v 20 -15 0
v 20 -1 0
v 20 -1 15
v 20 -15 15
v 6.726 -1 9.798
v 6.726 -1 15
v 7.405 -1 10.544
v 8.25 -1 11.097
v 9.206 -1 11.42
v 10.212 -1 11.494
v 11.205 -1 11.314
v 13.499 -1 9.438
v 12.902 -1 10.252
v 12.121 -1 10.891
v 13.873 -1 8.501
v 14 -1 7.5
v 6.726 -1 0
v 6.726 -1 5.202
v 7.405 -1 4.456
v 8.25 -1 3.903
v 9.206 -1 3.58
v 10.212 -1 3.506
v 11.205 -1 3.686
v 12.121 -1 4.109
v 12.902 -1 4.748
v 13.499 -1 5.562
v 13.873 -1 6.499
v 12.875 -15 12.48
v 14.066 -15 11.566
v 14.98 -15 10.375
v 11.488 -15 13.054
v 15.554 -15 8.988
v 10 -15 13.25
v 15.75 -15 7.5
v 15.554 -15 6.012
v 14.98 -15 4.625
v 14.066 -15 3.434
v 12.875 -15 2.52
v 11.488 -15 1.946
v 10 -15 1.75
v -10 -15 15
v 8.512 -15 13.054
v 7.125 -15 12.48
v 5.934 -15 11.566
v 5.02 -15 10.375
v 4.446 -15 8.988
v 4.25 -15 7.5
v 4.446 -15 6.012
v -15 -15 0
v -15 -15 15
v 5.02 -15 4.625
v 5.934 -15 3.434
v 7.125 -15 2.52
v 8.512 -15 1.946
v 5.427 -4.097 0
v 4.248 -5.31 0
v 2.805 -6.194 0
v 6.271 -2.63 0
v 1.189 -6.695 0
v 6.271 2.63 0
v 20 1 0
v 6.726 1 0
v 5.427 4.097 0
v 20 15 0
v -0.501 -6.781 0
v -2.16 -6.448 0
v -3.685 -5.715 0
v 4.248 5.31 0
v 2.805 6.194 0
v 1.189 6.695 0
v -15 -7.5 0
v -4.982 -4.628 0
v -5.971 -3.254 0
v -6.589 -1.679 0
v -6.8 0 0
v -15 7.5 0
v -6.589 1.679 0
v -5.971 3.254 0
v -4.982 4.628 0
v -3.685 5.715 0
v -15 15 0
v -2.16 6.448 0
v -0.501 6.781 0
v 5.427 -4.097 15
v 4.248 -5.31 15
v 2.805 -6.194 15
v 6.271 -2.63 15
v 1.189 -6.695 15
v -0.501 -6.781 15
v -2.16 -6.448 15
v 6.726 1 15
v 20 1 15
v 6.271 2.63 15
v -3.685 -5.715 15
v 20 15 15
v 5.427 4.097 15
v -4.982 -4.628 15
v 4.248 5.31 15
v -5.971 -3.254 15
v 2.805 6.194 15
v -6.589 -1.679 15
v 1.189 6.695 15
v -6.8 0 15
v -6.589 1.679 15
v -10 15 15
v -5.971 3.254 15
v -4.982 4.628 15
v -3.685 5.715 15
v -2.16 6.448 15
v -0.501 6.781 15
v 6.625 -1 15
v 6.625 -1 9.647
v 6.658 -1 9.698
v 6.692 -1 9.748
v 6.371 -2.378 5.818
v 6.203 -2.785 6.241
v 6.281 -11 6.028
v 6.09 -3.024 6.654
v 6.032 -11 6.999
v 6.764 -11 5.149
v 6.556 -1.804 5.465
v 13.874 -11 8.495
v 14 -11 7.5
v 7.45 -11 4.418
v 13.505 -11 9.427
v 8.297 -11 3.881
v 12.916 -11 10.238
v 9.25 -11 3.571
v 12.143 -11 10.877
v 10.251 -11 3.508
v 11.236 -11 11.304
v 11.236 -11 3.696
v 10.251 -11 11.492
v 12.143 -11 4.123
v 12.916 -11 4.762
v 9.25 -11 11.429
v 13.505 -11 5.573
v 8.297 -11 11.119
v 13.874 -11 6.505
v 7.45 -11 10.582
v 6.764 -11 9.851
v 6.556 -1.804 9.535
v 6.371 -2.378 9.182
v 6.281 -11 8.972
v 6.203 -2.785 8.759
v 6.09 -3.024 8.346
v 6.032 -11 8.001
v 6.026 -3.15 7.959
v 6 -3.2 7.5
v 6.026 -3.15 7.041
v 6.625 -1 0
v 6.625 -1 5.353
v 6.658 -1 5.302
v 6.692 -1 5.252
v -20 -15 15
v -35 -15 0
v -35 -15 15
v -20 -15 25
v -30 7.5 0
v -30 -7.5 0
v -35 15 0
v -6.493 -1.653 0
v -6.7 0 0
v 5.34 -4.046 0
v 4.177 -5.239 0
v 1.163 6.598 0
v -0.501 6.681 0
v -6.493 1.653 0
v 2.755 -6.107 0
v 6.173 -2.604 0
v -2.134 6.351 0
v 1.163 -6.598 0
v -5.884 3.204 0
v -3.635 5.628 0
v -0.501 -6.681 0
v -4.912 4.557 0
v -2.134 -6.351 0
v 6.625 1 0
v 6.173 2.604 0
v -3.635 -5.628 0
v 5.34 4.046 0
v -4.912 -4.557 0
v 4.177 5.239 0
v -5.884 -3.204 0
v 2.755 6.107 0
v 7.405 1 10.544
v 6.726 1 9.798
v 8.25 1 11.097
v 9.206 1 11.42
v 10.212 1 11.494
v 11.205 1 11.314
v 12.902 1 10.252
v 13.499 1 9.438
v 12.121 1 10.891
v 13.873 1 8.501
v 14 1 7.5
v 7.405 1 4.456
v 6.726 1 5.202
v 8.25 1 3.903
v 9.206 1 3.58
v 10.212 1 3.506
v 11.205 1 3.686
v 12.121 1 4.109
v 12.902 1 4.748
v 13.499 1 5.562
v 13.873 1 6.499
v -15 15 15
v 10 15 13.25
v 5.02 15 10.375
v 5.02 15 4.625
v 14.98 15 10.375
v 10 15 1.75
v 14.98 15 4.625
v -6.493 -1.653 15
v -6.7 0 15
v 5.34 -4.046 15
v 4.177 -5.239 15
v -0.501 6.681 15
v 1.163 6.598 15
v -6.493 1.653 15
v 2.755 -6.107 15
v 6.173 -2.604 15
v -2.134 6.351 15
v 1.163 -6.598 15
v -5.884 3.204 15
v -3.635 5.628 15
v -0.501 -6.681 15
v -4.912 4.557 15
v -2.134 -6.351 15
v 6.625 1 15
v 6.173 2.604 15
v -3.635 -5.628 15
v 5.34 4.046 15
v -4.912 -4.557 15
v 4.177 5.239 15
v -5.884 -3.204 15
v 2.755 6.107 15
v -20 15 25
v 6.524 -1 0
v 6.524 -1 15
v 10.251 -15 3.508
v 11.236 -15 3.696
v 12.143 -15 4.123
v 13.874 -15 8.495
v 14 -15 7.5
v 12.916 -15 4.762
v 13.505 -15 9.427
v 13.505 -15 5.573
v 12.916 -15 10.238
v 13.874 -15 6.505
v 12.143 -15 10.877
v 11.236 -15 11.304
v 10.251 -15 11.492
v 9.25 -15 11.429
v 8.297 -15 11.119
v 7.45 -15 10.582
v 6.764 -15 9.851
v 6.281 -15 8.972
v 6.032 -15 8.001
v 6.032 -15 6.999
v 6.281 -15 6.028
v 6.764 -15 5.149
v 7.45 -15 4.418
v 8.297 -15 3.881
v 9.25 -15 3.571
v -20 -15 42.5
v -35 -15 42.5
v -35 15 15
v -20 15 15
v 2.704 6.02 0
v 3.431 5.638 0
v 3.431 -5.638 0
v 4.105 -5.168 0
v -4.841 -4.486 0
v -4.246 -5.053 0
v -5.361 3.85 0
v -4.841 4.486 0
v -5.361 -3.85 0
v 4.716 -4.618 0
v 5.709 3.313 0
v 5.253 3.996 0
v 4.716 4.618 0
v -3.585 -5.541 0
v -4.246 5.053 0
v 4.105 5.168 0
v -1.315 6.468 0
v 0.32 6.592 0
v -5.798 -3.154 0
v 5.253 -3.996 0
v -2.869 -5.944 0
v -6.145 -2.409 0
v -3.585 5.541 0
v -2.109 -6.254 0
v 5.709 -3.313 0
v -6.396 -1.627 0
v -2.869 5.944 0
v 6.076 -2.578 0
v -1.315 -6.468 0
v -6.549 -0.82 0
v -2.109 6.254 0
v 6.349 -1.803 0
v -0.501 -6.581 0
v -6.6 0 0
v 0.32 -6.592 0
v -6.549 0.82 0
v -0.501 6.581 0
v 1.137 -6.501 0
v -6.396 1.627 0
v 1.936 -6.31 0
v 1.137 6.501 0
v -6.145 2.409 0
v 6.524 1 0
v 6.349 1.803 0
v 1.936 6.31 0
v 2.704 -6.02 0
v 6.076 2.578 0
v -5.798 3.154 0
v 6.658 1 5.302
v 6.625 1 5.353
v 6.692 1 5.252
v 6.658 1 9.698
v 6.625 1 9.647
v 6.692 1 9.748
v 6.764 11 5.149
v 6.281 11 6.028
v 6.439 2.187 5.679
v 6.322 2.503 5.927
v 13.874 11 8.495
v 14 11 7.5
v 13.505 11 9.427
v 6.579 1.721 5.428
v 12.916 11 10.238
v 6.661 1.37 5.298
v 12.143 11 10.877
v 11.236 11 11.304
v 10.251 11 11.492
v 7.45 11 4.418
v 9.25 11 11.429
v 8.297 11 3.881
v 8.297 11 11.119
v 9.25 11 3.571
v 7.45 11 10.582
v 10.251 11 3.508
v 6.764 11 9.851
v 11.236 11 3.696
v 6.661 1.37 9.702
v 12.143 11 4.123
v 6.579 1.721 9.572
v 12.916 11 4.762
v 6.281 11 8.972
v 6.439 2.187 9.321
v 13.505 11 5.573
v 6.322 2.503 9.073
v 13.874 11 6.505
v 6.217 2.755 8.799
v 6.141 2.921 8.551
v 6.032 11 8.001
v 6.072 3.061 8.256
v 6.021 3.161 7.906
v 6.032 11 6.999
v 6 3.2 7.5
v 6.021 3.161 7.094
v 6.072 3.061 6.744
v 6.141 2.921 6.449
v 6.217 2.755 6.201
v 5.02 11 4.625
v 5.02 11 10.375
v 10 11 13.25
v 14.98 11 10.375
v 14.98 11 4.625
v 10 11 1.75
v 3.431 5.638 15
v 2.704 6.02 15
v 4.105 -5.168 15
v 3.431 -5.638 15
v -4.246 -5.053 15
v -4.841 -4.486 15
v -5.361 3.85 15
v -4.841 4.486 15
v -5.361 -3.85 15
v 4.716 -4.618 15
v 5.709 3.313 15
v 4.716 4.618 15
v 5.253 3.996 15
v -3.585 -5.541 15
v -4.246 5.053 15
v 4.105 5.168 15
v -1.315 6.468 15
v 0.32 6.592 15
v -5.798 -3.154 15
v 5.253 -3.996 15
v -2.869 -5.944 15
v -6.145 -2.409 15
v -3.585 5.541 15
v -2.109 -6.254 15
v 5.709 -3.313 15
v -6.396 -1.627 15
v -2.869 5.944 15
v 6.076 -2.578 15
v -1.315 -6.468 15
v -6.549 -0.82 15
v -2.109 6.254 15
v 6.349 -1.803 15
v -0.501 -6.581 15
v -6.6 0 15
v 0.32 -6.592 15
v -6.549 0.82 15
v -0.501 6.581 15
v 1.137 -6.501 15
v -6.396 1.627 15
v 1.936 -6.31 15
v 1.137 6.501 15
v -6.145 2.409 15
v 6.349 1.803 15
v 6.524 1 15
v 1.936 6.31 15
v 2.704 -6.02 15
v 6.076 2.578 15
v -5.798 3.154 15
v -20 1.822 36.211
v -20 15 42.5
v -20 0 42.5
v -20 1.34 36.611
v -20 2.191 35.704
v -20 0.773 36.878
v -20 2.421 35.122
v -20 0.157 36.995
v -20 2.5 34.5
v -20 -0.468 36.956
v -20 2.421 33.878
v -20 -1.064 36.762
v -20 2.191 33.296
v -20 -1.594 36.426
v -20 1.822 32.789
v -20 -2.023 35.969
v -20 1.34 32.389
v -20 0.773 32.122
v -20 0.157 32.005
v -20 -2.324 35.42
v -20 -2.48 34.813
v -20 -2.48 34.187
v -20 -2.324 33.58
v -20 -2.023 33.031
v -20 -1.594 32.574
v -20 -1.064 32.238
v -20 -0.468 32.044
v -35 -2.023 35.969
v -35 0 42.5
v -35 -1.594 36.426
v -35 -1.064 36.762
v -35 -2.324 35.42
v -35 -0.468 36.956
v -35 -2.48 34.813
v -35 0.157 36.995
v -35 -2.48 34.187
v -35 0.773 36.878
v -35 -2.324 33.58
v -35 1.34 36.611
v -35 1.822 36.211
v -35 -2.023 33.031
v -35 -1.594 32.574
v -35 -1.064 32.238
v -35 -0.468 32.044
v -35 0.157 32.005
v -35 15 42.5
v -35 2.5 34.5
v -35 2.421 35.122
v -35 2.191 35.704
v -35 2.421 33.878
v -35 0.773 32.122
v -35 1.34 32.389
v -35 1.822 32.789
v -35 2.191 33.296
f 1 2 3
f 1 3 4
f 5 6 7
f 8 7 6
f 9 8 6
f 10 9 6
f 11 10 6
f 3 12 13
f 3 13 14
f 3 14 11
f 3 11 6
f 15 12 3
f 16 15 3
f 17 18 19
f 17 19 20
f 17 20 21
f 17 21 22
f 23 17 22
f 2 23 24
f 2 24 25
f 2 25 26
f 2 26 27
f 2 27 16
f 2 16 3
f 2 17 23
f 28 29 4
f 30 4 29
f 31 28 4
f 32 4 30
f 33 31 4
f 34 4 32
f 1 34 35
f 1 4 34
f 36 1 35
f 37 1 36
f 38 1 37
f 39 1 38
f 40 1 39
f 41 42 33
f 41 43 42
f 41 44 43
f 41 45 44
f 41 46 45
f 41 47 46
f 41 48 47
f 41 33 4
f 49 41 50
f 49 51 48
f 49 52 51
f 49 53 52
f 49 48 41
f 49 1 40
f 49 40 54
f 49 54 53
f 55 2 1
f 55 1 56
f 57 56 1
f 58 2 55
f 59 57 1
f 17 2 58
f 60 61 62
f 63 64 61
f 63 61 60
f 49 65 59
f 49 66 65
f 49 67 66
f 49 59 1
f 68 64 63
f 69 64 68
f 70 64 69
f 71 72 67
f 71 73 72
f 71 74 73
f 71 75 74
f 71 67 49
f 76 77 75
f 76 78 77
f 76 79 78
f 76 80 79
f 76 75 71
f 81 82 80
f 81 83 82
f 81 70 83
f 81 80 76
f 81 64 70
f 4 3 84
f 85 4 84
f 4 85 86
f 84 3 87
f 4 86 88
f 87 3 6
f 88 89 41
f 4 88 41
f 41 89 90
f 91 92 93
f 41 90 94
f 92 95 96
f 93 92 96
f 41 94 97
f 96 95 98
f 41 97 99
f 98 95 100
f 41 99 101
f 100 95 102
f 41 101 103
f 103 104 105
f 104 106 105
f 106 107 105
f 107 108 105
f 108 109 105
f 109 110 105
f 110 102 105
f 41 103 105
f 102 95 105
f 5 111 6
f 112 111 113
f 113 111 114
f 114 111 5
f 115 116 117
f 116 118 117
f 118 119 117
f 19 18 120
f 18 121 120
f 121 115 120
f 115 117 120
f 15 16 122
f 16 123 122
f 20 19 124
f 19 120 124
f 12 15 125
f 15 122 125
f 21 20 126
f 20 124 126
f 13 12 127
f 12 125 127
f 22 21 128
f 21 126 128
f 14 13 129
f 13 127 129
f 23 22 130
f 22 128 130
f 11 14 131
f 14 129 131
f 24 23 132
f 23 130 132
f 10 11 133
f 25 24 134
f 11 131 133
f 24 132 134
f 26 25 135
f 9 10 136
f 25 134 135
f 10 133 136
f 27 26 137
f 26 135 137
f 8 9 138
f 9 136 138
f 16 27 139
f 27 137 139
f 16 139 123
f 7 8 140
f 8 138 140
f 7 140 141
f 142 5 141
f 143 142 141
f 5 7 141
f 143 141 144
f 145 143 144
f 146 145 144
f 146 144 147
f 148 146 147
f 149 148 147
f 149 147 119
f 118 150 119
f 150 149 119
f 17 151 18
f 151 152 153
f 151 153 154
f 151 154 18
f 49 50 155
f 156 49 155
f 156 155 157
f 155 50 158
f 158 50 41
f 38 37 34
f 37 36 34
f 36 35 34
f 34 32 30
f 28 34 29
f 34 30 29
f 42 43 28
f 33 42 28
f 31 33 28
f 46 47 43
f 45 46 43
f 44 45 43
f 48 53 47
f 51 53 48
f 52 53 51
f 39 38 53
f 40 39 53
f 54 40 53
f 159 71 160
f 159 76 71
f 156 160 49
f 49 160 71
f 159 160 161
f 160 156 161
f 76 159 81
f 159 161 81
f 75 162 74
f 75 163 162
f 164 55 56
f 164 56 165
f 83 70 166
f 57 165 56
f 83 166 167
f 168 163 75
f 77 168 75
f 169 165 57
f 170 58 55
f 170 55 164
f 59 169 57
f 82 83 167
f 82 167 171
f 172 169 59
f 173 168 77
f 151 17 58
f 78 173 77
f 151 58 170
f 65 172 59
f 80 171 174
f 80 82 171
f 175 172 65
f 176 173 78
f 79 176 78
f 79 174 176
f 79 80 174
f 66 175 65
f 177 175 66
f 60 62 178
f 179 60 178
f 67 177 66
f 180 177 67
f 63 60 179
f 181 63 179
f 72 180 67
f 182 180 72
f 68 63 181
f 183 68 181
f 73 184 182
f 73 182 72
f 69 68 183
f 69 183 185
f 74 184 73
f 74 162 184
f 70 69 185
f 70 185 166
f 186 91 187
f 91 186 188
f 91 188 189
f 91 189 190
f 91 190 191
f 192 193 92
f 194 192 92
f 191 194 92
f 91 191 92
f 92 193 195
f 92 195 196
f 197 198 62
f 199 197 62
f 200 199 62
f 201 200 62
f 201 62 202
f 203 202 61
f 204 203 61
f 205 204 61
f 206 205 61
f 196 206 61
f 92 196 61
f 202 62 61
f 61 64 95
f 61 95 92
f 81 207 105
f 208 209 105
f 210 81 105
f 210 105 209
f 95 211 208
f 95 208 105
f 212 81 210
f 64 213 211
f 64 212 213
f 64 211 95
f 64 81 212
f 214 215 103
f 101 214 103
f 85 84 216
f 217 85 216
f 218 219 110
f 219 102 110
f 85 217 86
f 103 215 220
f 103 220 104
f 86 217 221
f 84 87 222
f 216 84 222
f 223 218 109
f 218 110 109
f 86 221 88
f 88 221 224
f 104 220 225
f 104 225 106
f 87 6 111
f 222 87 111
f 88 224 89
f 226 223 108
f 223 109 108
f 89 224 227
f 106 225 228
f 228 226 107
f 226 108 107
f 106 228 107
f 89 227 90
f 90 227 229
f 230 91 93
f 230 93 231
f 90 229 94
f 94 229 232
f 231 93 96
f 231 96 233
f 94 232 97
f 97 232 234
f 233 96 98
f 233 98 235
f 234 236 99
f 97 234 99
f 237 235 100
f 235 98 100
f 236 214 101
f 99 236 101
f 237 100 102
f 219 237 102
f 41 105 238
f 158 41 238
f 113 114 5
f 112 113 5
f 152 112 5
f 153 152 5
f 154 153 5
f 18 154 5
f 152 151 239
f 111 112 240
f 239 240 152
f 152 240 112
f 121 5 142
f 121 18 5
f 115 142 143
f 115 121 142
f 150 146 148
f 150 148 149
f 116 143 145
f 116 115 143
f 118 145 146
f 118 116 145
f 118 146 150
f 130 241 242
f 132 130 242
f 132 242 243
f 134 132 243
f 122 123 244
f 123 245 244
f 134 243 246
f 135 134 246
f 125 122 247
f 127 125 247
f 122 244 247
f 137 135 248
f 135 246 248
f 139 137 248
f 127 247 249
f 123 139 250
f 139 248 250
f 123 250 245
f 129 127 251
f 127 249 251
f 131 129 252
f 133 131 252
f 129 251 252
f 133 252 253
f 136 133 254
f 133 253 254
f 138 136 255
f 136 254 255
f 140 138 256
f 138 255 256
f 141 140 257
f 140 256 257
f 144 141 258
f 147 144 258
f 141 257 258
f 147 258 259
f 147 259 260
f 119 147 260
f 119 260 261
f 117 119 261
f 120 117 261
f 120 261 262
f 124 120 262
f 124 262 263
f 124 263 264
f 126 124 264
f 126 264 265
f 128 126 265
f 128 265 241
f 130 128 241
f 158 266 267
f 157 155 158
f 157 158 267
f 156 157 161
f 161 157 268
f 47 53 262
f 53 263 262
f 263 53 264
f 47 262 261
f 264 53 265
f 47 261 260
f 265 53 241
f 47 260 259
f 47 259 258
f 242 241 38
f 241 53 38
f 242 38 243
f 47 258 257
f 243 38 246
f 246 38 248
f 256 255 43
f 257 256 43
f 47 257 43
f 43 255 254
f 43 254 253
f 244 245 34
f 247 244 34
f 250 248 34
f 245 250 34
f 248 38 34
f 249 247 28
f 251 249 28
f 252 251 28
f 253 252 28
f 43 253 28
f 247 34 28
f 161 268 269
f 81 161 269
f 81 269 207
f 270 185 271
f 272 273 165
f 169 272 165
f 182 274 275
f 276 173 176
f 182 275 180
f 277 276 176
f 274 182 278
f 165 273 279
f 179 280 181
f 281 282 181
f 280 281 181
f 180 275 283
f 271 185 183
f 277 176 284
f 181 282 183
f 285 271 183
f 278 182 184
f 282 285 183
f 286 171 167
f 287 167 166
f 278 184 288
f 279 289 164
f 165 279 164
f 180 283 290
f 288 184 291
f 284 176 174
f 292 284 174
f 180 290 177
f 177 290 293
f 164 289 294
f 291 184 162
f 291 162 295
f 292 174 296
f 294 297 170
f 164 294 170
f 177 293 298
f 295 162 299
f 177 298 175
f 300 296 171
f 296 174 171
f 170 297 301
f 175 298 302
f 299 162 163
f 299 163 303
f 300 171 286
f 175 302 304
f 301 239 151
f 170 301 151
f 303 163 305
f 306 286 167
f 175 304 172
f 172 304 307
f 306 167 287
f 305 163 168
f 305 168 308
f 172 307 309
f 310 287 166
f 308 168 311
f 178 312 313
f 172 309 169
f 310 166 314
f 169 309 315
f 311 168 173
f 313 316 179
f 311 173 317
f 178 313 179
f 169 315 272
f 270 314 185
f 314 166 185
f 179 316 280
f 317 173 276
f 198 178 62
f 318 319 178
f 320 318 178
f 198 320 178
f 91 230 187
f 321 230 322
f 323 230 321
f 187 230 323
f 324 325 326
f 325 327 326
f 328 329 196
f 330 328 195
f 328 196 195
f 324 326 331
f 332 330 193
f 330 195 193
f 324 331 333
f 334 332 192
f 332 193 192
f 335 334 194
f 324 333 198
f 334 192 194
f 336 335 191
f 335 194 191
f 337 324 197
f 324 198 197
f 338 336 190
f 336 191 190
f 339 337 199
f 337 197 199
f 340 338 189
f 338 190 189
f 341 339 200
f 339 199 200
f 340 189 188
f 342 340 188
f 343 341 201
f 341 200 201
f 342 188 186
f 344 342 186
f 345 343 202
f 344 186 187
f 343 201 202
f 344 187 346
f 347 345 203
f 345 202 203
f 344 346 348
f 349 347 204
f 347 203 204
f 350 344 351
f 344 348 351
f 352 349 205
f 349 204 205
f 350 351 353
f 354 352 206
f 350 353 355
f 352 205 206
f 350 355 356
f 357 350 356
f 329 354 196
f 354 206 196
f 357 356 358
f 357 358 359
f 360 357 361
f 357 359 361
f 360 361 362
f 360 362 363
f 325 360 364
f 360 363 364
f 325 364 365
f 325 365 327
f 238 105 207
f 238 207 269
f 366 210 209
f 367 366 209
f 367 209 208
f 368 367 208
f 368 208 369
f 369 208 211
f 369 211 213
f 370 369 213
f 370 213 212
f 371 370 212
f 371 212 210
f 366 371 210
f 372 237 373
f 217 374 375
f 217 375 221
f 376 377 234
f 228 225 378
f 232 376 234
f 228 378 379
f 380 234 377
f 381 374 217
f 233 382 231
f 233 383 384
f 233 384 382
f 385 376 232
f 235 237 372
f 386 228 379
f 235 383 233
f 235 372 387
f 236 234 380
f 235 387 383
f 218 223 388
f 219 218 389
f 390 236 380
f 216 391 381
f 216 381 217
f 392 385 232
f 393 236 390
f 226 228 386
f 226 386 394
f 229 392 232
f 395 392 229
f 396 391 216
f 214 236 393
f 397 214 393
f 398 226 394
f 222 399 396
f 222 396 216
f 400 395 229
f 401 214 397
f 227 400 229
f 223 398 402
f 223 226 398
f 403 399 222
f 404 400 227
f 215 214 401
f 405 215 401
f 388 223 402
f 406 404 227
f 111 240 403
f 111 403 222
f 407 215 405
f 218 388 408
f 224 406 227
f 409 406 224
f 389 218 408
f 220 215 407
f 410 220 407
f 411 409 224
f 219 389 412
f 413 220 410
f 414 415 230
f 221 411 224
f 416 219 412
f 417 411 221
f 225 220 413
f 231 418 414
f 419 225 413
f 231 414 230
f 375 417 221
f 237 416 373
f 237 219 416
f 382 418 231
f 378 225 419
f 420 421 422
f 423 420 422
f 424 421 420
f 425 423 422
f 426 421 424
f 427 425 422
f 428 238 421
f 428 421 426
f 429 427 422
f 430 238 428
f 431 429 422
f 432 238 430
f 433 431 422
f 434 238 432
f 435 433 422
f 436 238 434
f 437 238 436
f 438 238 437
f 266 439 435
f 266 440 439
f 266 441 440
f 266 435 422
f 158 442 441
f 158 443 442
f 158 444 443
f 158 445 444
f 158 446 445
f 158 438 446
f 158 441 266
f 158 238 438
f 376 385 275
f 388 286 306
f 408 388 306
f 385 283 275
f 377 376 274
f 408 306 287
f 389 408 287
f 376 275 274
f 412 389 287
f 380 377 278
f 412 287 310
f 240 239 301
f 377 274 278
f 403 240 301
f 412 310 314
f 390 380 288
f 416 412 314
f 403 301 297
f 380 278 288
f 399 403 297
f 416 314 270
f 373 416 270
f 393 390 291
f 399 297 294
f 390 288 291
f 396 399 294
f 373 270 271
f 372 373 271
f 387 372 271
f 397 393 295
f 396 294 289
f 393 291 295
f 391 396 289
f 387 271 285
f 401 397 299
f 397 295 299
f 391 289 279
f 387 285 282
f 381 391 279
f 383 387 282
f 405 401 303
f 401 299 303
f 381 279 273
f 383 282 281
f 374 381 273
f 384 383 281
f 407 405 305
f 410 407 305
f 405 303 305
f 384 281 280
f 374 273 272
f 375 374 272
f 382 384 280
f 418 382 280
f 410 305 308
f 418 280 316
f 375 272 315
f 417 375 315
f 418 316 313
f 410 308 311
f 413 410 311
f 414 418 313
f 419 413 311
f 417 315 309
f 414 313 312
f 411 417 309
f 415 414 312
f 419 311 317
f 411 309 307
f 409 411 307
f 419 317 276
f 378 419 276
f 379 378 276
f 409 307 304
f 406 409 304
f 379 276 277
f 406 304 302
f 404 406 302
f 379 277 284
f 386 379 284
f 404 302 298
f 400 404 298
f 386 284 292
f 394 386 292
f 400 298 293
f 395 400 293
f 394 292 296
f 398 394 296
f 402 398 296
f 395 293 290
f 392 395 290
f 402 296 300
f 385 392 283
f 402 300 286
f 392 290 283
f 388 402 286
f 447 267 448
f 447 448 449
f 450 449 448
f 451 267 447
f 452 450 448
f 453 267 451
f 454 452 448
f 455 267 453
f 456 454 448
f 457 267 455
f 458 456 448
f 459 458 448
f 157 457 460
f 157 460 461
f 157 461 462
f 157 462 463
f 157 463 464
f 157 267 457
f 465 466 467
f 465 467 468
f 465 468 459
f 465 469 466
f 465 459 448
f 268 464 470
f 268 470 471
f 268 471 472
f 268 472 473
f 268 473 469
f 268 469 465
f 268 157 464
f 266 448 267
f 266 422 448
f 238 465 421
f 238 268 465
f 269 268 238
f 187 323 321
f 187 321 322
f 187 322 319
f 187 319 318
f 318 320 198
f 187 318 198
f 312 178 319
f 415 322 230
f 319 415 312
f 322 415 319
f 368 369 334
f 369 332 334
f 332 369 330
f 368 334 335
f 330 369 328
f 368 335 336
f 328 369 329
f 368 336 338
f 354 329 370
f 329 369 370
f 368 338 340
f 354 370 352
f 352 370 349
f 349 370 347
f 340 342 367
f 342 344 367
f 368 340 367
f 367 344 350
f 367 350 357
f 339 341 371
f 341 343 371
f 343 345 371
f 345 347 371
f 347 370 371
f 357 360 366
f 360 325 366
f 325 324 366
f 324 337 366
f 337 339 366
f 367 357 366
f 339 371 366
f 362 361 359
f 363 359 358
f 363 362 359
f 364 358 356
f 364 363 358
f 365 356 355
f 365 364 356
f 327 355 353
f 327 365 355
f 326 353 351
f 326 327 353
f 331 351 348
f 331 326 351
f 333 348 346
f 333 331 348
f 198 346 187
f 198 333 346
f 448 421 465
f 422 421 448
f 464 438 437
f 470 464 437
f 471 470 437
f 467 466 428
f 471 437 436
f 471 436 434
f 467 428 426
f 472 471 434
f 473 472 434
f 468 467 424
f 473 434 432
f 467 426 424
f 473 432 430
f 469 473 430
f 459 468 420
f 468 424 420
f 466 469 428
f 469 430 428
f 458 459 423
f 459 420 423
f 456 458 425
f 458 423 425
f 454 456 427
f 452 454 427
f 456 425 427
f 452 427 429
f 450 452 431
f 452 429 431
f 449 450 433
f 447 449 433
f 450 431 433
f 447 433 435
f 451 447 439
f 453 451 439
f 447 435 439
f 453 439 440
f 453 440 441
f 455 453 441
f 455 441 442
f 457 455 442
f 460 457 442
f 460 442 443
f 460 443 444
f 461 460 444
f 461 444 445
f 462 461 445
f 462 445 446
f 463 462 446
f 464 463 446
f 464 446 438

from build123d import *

# Parameters (mm, degrees)
PAD_DEPTH       = 15
PAD001_DEPTH    = 15
SKETCH002_R     = 4
POCKET_DEPTH    = 30
POCKET001_DEPTH = 4
SKETCH004_W     = 15
SKETCH004_H     = 50
PAD002_DEPTH    = 40
PAD003_DEPTH    = 50
SKETCH006_W     = 20
SKETCH006_H     = 5
POCKET002_DEPTH = 15
SKETCH007_W     = 30
SKETCH007_H     = 7.2
POCKET003_DEPTH = 3
SKETCH008_W     = 173.297394
SKETCH008_H     = 63.43742
POCKET004_DEPTH = 100
SKETCH009_W     = 20
SKETCH009_H     = 30
PAD004_DEPTH    = 15
SKETCH010_W     = 15
SKETCH010_H     = 30
PAD005_DEPTH    = 60
SKETCH011_R     = 2.5
POCKET005_DEPTH = 15
PAD006_DEPTH    = 30
SKETCH013_W     = 15
SKETCH013_H     = 20
POCKET006_DEPTH = 30
SKETCH014_R     = 2.5
POCKET007_DEPTH = 15
SKETCH015_R     = 6.7
POCKET008_DEPTH = 15
POCKET009_DEPTH = 4
SKETCH017_R     = 5.75
SKETCH017_R_2   = 4
PAD007_DEPTH    = 4
PAD008_DEPTH    = 15
SKETCH019_W     = 30
SKETCH019_H     = 12.5
POCKET010_DEPTH = 15
SKETCH020_R     = 2.5
POCKET011_DEPTH = 15


with BuildPart() as part:
    # Sketch → Pad (new body)
    with BuildSketch(Plane.XY):
        with BuildLine():
            ThreePointArc((6.422616, 1), (-6.5, 0), (6.422616, -1))
            Line((6.422616, -1), (20, -1))
            Line((20, -1), (20, -15))
            Line((20, -15), (-15, -15))
            Line((-15, -15), (-15, -7.5))
            Line((-30, -7.5), (-15, -7.5))
            Line((-45, -22.5), (-30, -7.5))
            Line((-45, -22.5), (-45, -45))
            Line((-180, -45), (-45, -45))
            Line((-180, 45), (-180, -45))
            Line((-180, 45), (-45, 45))
            Line((-45, 22.5), (-45, 45))
            Line((-45, 22.5), (-30, 7.5))
            Line((-30, 7.5), (-15, 7.5))
            Line((-15, 7.5), (-15, 15))
            Line((-15, 15), (20, 15))
            Line((20, 15), (20, 1))
            Line((6.422616, 1), (20, 1))
        make_face()
        Polygon((-60, 30), (-60, 2.330407), (-60, -7.217157), (-60, -30), (-165, -30), (-165, 30), align=None, mode=Mode.SUBTRACT)
    extrude(amount=PAD_DEPTH)

    # Sketch001 → Pad001 (new body)
    with BuildSketch(Plane.XY.offset(15)):
        Polygon((-165, 30), (-165, 20), (-150, 30), align=None)
        Polygon((-165, -20), (-165, -30), (-150, -30), align=None)
    extrude(amount=-PAD001_DEPTH)

    # Sketch002 → Pocket (cut)
    with BuildSketch(Plane.XZ.offset(15)):
        with Locations((10, 7.5)):
            Circle(SKETCH002_R)
    extrude(amount=-POCKET_DEPTH, mode=Mode.SUBTRACT)

    # Sketch003 → Pocket001 (cut)
    with BuildSketch(Plane.XZ.offset(15)):
        Polygon((12.875, 2.520354), (15.75, 7.5), (12.875, 12.479646), (7.125, 12.479646), (4.25, 7.5), (7.125, 2.520354), align=None)
    extrude(amount=-POCKET001_DEPTH, mode=Mode.SUBTRACT)

    # Sketch004 → Pad002 (new body)
    with BuildSketch(Plane.XY.offset(15)):
        with Locations((-172.5, 0)):
            Rectangle(SKETCH004_W, SKETCH004_H)
    extrude(amount=PAD002_DEPTH)

    # Sketch005 → Pad003 (new body)
    with BuildSketch(Plane(origin=(0, 25, 0), x_dir=(-1, 0, 0), z_dir=(0, 1, 0))):
        Polygon((180, 25), (190, 15), (190, 0), (180, 0), align=None)
    extrude(amount=-PAD003_DEPTH)

    # Sketch006 → Pocket002 (cut)
    with BuildSketch(Plane.YZ.offset(-165)):
        with Locations((0, 33.434408)):
            Rectangle(SKETCH006_W, SKETCH006_H)
    extrude(amount=-POCKET002_DEPTH, mode=Mode.SUBTRACT)

    # Sketch007 → Pocket003 (cut)
    with BuildSketch(Plane.YZ.offset(-165)):
        with Locations((0, 33.791532)):
            Rectangle(SKETCH007_W, SKETCH007_H)
    extrude(amount=-POCKET003_DEPTH, mode=Mode.SUBTRACT)

    # Sketch008 → Pocket004 (cut)
    with BuildSketch(Plane(origin=(0, 45, 0), x_dir=(-1, 0, 0), z_dir=(0, 1, 0))):
        with Locations((116.648697, 31.71871)):
            Rectangle(SKETCH008_W, SKETCH008_H)
    extrude(amount=-POCKET004_DEPTH, mode=Mode.SUBTRACT)

    # Sketch009 → Pad004 (new body)
    with BuildSketch(Plane.XY.offset(15)):
        with Locations((-25, 0)):
            Rectangle(SKETCH009_W, SKETCH009_H)
    extrude(amount=-PAD004_DEPTH)

    # Sketch010 → Pad005 (new body)
    with BuildSketch(Plane.XY.offset(15)):
        with Locations((-27.5, 0)):
            Rectangle(SKETCH010_W, SKETCH010_H)
    extrude(amount=PAD005_DEPTH)

    # Sketch011 → Pocket005 (cut)
    with BuildSketch(Plane.YZ.offset(-20)):
        with Locations((0, 65)):
            Circle(SKETCH011_R)
    extrude(amount=-POCKET005_DEPTH, mode=Mode.SUBTRACT)

    # Sketch012 → Pad006 (new body)
    with BuildSketch(Plane(origin=(0, 15, 0), x_dir=(-1, 0, 0), z_dir=(0, 1, 0))):
        Polygon((10, 15), (20, 25), (20, 15), align=None)
    extrude(amount=-PAD006_DEPTH)

    # Sketch013 → Pocket006 (cut)
    with BuildSketch(Plane.XZ.offset(15)):
        with Locations((-27.5, 65)):
            Rectangle(SKETCH013_W, SKETCH013_H)
    extrude(amount=-POCKET006_DEPTH, mode=Mode.SUBTRACT)

    # Sketch014 → Pocket007 (cut)
    with BuildSketch(Plane.YZ.offset(-20)):
        with Locations((0, 45)):
            Circle(SKETCH014_R)
    extrude(amount=-POCKET007_DEPTH, mode=Mode.SUBTRACT)

    # Sketch015 → Pocket008 (cut)
    with BuildSketch(Plane(origin=(0, 0, 0), x_dir=(1, 0, 0), z_dir=(0, 0, -1))):
        Circle(SKETCH015_R)
    extrude(amount=-POCKET008_DEPTH, mode=Mode.SUBTRACT)

    # Sketch016 → Pocket009 (cut)
    with BuildSketch(Plane(origin=(0, 15, 0), x_dir=(-1, 0, 0), z_dir=(0, 1, 0))):
        Polygon((-5.020354, 4.625), (-5.020354, 10.375), (-10, 13.25), (-14.979646, 10.375), (-14.979646, 4.625), (-10, 1.75), align=None)
    extrude(amount=-POCKET009_DEPTH, mode=Mode.SUBTRACT)

    # Sketch017 → Pad007 (new body)
    with BuildSketch(Plane.XZ.offset(15)):
        with Locations((10, 7.5)):
            Circle(SKETCH017_R)
        with Locations((10, 7.5)):
            Circle(SKETCH017_R_2, mode=Mode.SUBTRACT)
    extrude(amount=-PAD007_DEPTH)

    # Sketch018 → Pad008 (new body)
    with BuildSketch(Plane(origin=(0, 0, 0), x_dir=(1, 0, 0), z_dir=(0, 0, -1))):
        with BuildLine():
            ThreePointArc((6.523803, 1), (-6.6, 0), (6.523803, -1))
            Line((6.523803, -1), (6.726069, -1))
            ThreePointArc((6.726069, 1), (-6.8, 0), (6.726069, -1))
            Line((6.523803, 1), (6.726069, 1))
        make_face()
    extrude(amount=-PAD008_DEPTH)

    # Sketch019 → Pocket010 (cut)
    with BuildSketch(Plane.YZ.offset(-20)):
        with Locations((0, 48.75)):
            Rectangle(SKETCH019_W, SKETCH019_H)
    extrude(amount=-POCKET010_DEPTH, mode=Mode.SUBTRACT)

    # Sketch020 → Pocket011 (cut)
    with BuildSketch(Plane.YZ.offset(-20)):
        with Locations((0, 34.5)):
            Circle(SKETCH020_R)
    extrude(amount=-POCKET011_DEPTH, mode=Mode.SUBTRACT)


solid = part.part
